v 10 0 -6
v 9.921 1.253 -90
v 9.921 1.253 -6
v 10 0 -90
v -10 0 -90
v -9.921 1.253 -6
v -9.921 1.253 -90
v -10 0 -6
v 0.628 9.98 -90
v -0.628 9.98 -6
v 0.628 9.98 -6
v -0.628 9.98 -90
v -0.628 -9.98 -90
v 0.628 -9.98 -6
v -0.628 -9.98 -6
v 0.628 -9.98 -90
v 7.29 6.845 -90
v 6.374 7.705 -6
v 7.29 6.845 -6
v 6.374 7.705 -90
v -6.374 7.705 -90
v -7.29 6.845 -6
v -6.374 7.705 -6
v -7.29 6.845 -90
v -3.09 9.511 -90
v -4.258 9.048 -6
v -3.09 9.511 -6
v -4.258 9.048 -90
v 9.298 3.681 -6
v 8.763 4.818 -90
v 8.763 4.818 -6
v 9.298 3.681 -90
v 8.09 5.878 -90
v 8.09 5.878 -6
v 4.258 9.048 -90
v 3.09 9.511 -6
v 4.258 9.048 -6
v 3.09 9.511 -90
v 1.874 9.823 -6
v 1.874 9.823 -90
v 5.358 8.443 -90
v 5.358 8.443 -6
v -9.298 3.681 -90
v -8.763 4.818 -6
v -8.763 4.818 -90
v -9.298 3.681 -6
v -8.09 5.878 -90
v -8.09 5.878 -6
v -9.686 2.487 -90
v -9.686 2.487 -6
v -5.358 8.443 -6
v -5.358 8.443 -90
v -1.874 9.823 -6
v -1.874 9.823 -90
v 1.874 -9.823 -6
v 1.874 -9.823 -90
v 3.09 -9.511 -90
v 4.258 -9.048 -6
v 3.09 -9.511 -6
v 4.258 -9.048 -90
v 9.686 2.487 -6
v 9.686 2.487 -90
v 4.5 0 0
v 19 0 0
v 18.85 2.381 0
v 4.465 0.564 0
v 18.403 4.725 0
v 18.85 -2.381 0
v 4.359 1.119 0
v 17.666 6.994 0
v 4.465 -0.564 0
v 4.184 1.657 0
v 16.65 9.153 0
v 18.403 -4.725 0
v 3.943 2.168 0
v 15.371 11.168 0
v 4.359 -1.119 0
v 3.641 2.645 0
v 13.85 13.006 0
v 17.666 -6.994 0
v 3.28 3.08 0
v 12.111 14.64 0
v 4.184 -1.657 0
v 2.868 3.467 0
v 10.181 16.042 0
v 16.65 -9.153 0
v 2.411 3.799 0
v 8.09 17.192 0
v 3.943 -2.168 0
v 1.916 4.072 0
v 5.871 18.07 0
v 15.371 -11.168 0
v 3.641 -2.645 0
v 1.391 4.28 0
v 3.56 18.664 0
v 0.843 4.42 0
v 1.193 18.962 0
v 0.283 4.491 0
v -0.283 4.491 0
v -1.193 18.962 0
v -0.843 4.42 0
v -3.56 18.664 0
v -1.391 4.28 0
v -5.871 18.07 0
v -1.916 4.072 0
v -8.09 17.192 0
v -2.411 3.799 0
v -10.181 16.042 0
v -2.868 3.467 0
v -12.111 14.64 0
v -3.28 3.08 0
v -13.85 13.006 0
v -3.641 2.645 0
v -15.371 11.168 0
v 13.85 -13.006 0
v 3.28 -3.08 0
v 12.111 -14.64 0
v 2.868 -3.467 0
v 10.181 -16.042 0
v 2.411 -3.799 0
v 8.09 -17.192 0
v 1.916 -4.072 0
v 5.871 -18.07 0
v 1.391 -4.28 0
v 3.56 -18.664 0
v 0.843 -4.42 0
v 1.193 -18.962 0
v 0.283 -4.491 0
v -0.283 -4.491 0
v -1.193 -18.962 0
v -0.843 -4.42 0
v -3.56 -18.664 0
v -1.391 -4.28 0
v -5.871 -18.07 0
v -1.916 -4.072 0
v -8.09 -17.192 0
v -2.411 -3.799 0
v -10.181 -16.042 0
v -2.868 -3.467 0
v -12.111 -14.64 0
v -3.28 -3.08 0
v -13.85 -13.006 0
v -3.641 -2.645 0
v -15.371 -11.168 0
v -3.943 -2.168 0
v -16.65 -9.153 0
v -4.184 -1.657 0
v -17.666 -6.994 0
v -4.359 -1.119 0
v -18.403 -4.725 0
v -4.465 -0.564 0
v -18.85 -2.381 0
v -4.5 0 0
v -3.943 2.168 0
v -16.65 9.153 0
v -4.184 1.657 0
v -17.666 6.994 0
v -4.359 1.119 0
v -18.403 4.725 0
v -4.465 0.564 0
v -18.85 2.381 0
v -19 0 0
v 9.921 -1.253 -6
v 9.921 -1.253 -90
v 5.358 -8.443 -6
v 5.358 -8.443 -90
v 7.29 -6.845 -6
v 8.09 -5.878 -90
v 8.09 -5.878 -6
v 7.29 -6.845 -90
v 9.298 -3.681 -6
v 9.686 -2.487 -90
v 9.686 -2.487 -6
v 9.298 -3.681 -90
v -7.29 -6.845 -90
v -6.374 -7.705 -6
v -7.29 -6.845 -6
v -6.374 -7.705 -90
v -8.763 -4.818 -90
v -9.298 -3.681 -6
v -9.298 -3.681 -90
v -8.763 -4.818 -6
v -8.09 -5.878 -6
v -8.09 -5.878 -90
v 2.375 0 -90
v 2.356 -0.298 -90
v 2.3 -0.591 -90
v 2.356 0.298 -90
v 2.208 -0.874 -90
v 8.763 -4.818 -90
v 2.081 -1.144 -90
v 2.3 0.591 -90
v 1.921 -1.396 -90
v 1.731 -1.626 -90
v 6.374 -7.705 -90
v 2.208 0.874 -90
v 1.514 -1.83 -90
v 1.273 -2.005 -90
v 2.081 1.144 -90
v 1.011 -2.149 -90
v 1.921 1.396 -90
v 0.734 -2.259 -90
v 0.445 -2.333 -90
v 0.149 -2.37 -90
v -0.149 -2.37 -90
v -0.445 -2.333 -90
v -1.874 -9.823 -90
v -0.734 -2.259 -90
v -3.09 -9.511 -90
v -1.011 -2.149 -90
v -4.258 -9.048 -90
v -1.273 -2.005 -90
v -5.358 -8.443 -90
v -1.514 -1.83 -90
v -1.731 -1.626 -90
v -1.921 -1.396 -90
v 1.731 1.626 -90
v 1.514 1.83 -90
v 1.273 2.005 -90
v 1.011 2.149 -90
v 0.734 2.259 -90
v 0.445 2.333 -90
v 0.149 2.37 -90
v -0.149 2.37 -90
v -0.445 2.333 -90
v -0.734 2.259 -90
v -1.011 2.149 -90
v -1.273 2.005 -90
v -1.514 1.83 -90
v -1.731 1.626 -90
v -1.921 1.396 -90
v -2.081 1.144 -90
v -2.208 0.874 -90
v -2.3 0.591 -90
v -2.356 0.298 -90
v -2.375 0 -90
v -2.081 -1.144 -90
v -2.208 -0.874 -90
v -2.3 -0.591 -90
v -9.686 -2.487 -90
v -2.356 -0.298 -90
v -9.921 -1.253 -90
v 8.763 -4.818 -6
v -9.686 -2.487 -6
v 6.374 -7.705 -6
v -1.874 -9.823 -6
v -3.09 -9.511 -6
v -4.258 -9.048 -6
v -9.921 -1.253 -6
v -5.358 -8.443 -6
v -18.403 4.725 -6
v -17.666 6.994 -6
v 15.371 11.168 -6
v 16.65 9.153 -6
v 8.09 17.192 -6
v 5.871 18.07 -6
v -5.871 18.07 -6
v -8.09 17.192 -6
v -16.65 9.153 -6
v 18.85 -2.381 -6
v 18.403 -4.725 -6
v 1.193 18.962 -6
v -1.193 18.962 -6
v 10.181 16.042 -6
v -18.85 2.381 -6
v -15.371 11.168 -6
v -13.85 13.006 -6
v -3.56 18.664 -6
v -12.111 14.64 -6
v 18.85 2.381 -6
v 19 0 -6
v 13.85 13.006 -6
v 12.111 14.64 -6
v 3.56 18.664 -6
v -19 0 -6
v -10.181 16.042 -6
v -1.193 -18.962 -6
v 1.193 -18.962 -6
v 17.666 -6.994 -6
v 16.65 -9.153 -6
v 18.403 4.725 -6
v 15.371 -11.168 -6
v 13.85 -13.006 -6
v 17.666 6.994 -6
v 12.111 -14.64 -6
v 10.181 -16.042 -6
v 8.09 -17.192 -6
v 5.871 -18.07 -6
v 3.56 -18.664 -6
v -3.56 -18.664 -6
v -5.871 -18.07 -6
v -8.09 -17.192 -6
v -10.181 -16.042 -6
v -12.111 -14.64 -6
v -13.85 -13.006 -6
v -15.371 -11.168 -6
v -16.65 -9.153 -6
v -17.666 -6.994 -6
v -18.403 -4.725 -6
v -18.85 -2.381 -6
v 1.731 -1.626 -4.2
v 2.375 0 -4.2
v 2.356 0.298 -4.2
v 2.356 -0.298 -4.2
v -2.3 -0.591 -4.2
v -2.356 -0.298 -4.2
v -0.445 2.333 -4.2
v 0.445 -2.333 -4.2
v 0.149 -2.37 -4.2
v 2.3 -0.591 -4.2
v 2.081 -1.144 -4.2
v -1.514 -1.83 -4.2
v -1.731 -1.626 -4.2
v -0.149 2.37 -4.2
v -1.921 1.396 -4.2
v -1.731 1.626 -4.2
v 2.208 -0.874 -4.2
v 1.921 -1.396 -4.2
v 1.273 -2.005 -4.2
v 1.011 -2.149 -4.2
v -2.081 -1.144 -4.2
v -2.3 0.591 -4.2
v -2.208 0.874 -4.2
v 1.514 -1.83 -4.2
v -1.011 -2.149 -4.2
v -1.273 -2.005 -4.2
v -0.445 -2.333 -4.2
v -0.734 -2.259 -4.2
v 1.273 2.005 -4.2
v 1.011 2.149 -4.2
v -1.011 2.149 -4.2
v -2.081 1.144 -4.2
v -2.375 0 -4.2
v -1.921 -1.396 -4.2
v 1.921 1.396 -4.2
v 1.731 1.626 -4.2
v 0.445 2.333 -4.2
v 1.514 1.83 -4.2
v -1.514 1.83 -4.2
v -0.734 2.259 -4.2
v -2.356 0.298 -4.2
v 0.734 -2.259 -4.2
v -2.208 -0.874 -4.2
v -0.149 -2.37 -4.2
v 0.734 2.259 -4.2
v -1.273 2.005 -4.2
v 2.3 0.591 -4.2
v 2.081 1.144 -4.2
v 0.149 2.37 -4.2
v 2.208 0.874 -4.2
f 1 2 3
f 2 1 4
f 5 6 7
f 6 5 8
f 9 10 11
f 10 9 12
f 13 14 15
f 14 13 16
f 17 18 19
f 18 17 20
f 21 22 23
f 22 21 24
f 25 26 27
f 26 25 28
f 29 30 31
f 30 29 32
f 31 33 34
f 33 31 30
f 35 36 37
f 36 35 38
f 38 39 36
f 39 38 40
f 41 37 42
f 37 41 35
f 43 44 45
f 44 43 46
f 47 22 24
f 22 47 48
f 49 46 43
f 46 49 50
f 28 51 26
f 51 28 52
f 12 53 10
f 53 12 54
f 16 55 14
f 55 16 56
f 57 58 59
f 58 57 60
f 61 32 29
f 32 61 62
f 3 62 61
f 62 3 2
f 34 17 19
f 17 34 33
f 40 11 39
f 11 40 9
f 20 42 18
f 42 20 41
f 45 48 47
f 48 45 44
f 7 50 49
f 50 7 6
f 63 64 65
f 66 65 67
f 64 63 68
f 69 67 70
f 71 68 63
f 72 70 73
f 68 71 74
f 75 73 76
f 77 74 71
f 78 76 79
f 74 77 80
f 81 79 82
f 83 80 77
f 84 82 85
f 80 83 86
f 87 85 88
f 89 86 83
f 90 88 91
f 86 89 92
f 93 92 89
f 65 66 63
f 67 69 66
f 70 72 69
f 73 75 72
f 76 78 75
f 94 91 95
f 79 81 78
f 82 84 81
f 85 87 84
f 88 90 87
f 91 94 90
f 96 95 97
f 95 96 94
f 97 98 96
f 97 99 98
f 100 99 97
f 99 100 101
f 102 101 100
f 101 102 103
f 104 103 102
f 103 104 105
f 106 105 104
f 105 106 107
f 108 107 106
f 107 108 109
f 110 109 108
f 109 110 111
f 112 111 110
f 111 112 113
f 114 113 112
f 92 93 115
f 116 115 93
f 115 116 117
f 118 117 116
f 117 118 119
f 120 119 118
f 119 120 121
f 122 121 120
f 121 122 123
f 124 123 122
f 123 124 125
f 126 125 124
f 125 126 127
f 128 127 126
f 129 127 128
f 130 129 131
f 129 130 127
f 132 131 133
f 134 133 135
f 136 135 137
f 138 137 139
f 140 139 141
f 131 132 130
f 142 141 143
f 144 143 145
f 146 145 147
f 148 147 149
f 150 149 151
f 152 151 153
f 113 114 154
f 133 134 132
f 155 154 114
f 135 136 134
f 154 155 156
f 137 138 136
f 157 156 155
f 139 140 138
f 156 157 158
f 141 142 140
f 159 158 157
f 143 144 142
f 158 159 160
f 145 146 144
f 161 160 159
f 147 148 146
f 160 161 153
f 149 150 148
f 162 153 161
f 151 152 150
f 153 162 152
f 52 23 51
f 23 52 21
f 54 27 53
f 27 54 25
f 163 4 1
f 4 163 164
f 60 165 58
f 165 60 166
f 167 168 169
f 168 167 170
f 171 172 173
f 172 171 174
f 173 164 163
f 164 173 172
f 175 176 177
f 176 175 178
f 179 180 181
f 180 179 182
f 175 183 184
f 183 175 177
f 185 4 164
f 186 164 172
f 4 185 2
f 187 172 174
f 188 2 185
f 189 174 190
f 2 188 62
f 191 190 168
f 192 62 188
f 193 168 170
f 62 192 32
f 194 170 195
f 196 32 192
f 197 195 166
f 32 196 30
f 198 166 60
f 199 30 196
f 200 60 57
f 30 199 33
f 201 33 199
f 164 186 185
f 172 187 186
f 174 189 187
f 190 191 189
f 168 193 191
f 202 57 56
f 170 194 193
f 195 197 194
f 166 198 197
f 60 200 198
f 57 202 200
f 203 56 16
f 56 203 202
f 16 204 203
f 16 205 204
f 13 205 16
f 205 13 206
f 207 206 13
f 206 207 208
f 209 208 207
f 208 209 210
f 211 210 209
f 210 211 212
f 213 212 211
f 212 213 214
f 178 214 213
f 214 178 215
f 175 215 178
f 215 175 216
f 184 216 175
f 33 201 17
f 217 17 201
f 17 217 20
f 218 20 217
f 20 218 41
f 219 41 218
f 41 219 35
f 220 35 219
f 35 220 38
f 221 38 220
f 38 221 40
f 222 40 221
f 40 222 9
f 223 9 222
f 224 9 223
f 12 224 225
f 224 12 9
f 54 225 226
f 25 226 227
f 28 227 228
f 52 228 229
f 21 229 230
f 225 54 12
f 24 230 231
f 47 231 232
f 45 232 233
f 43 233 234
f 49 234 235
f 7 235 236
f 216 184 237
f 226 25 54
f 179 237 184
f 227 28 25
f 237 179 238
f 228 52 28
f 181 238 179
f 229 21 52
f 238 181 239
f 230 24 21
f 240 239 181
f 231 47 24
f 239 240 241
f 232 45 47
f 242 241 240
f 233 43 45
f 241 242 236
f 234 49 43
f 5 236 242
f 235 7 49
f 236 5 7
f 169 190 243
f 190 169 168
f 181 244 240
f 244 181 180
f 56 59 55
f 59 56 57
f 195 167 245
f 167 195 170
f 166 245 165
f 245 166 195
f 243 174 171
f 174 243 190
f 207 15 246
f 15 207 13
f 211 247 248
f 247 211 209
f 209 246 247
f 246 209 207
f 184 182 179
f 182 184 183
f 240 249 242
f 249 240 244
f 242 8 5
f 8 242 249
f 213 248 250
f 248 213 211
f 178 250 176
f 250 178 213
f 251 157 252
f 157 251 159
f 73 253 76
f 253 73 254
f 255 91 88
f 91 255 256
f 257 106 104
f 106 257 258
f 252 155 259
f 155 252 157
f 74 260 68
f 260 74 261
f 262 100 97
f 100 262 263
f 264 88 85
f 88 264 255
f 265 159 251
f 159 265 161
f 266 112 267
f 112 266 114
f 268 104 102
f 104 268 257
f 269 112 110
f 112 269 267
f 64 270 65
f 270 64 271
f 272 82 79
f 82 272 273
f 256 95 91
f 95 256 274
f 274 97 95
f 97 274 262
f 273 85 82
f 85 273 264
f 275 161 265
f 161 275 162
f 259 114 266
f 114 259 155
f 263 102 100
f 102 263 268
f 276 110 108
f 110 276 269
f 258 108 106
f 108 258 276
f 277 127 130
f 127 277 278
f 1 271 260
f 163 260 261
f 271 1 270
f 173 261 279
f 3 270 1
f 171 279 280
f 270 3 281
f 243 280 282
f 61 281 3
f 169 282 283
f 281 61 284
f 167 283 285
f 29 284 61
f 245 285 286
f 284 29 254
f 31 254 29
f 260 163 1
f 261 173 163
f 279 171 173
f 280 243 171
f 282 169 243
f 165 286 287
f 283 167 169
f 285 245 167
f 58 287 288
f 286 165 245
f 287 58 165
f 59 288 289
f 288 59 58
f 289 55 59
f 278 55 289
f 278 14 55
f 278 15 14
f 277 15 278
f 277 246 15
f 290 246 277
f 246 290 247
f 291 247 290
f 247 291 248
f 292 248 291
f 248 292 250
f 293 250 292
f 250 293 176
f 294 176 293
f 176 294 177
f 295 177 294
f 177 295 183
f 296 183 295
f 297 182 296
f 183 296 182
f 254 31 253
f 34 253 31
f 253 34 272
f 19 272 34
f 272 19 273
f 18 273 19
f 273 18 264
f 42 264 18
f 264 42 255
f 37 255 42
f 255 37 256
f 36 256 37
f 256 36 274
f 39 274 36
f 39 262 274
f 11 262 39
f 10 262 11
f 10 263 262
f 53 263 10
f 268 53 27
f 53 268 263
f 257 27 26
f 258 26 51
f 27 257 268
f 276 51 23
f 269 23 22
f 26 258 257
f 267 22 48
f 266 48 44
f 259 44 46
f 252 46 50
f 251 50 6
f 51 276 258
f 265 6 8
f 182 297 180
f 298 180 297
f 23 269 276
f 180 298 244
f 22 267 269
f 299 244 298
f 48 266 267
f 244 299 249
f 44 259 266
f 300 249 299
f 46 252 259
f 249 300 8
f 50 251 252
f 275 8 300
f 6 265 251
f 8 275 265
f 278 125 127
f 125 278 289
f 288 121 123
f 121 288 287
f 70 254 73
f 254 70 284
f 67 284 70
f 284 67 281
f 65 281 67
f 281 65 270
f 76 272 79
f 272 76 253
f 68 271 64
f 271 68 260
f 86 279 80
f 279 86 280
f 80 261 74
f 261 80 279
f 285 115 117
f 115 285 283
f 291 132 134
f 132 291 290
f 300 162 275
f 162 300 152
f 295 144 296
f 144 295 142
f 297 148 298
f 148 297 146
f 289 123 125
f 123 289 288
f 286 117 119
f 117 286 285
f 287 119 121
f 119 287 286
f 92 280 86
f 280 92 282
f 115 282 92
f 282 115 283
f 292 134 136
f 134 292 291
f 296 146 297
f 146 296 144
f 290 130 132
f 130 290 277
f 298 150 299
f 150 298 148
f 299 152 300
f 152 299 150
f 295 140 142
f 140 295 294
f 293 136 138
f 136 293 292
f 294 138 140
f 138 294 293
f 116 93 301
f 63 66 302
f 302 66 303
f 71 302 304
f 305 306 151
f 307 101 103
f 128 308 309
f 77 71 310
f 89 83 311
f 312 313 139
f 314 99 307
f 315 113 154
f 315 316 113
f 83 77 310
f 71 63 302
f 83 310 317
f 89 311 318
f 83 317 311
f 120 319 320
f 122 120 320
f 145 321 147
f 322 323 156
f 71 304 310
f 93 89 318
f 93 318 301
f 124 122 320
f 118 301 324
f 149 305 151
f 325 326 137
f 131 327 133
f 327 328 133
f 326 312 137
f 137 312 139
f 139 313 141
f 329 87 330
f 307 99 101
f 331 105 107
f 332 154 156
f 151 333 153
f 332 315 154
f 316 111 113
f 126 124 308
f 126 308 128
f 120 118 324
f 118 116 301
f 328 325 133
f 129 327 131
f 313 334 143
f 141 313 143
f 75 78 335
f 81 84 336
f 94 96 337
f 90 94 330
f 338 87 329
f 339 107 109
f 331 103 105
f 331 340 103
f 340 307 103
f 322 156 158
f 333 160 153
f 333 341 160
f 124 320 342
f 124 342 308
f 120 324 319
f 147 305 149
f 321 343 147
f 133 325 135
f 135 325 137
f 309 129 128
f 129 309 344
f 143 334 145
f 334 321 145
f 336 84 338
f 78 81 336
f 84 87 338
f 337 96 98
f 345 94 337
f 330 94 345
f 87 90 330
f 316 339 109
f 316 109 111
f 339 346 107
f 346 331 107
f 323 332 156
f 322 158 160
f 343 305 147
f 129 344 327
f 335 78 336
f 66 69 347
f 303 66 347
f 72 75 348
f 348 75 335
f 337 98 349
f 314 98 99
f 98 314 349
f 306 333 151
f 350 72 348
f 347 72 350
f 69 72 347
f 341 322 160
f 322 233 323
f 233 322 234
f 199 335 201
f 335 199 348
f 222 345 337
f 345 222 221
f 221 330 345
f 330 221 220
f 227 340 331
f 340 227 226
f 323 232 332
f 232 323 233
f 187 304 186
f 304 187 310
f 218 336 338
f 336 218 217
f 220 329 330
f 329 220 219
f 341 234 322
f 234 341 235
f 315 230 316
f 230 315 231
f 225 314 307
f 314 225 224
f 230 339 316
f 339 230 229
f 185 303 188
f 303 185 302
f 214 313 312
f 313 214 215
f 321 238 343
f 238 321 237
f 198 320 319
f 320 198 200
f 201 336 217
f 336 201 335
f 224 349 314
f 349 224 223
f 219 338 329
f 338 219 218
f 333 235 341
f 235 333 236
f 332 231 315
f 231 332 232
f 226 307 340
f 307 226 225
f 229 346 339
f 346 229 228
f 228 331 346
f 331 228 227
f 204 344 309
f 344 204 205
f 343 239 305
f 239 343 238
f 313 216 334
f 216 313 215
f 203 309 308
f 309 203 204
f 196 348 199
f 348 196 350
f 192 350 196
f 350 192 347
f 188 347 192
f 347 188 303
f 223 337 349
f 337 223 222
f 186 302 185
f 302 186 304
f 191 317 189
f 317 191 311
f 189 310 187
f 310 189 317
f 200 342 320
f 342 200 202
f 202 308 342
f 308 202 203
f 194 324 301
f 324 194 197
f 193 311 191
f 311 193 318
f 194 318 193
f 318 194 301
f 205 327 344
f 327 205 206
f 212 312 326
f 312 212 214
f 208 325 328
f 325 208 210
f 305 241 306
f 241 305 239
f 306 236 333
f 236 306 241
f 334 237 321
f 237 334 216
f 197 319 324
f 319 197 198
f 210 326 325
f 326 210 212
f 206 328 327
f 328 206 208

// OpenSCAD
$fn = 50;


difference() {
	union() {
		translate(v = [0, 0, -90.0000000000]) {
			cylinder(h = 90, r = 10.0000000000);
		}
		translate(v = [0, 0, -6.0000000000]) {
			cylinder(h = 6, r = 19.0000000000);
		}
	}
	union() {
		translate(v = [0, 0, 0]) {
			rotate(a = [0, 0, 0]) {
				difference() {
					union() {
						#translate(v = [0, 0, -90.0000000000]) {
							cylinder(h = 90, r = 2.2500000000);
						}
						#translate(v = [0, 0, -4.2000000000]) {
							cylinder(h = 4.2000000000, r1 = 2.3750000000, r2 = 4.5000000000);
						}
						#translate(v = [0, 0, -90.0000000000]) {
							cylinder(h = 90, r = 2.3750000000);
						}
						#translate(v = [0, 0, -90.0000000000]) {
							cylinder(h = 90, r = 2.2500000000);
						}
					}
					union();
				}
			}
		}
	}
}
